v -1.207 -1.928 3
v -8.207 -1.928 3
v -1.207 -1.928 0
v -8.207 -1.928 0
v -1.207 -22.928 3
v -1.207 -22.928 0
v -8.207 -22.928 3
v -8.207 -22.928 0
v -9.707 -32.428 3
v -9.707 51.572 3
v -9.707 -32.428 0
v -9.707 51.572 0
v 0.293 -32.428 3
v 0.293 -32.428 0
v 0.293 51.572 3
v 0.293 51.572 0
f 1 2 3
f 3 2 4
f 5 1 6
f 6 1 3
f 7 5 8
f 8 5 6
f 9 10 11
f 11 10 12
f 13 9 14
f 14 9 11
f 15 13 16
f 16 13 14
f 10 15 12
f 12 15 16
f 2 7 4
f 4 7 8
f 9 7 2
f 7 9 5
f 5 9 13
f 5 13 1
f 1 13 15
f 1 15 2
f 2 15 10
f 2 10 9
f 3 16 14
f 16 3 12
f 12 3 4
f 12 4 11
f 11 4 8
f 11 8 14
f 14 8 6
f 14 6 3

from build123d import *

# Parameters (mm, degrees)
ESBO_O1_W                = 10
ESBO_O1_H                = 9
ESBO_O1_H_2              = 66
ESBO_O1_W_2              = 7
ESBO_O1_H_3              = 21
RESSALTO_EXTRUS_O1_DEPTH = 3


with BuildPart() as part:
    # Esboço1 → Ressalto-extrusão1 (new body)
    with BuildSketch(Plane.XY):
        with Locations((-4.707063062, 47.072338936)):
            Rectangle(ESBO_O1_W, ESBO_O1_H)
        with Locations((-4.707063062, 9.572338936)):
            Rectangle(ESBO_O1_W, ESBO_O1_H_2)
        with Locations((-4.707063062, -12.427661064)):
            Rectangle(ESBO_O1_W_2, ESBO_O1_H_3, mode=Mode.SUBTRACT)
        with Locations((-4.707063062, -27.927661064)):
            Rectangle(ESBO_O1_W, ESBO_O1_H)
    extrude(amount=RESSALTO_EXTRUS_O1_DEPTH)


solid = part.part
